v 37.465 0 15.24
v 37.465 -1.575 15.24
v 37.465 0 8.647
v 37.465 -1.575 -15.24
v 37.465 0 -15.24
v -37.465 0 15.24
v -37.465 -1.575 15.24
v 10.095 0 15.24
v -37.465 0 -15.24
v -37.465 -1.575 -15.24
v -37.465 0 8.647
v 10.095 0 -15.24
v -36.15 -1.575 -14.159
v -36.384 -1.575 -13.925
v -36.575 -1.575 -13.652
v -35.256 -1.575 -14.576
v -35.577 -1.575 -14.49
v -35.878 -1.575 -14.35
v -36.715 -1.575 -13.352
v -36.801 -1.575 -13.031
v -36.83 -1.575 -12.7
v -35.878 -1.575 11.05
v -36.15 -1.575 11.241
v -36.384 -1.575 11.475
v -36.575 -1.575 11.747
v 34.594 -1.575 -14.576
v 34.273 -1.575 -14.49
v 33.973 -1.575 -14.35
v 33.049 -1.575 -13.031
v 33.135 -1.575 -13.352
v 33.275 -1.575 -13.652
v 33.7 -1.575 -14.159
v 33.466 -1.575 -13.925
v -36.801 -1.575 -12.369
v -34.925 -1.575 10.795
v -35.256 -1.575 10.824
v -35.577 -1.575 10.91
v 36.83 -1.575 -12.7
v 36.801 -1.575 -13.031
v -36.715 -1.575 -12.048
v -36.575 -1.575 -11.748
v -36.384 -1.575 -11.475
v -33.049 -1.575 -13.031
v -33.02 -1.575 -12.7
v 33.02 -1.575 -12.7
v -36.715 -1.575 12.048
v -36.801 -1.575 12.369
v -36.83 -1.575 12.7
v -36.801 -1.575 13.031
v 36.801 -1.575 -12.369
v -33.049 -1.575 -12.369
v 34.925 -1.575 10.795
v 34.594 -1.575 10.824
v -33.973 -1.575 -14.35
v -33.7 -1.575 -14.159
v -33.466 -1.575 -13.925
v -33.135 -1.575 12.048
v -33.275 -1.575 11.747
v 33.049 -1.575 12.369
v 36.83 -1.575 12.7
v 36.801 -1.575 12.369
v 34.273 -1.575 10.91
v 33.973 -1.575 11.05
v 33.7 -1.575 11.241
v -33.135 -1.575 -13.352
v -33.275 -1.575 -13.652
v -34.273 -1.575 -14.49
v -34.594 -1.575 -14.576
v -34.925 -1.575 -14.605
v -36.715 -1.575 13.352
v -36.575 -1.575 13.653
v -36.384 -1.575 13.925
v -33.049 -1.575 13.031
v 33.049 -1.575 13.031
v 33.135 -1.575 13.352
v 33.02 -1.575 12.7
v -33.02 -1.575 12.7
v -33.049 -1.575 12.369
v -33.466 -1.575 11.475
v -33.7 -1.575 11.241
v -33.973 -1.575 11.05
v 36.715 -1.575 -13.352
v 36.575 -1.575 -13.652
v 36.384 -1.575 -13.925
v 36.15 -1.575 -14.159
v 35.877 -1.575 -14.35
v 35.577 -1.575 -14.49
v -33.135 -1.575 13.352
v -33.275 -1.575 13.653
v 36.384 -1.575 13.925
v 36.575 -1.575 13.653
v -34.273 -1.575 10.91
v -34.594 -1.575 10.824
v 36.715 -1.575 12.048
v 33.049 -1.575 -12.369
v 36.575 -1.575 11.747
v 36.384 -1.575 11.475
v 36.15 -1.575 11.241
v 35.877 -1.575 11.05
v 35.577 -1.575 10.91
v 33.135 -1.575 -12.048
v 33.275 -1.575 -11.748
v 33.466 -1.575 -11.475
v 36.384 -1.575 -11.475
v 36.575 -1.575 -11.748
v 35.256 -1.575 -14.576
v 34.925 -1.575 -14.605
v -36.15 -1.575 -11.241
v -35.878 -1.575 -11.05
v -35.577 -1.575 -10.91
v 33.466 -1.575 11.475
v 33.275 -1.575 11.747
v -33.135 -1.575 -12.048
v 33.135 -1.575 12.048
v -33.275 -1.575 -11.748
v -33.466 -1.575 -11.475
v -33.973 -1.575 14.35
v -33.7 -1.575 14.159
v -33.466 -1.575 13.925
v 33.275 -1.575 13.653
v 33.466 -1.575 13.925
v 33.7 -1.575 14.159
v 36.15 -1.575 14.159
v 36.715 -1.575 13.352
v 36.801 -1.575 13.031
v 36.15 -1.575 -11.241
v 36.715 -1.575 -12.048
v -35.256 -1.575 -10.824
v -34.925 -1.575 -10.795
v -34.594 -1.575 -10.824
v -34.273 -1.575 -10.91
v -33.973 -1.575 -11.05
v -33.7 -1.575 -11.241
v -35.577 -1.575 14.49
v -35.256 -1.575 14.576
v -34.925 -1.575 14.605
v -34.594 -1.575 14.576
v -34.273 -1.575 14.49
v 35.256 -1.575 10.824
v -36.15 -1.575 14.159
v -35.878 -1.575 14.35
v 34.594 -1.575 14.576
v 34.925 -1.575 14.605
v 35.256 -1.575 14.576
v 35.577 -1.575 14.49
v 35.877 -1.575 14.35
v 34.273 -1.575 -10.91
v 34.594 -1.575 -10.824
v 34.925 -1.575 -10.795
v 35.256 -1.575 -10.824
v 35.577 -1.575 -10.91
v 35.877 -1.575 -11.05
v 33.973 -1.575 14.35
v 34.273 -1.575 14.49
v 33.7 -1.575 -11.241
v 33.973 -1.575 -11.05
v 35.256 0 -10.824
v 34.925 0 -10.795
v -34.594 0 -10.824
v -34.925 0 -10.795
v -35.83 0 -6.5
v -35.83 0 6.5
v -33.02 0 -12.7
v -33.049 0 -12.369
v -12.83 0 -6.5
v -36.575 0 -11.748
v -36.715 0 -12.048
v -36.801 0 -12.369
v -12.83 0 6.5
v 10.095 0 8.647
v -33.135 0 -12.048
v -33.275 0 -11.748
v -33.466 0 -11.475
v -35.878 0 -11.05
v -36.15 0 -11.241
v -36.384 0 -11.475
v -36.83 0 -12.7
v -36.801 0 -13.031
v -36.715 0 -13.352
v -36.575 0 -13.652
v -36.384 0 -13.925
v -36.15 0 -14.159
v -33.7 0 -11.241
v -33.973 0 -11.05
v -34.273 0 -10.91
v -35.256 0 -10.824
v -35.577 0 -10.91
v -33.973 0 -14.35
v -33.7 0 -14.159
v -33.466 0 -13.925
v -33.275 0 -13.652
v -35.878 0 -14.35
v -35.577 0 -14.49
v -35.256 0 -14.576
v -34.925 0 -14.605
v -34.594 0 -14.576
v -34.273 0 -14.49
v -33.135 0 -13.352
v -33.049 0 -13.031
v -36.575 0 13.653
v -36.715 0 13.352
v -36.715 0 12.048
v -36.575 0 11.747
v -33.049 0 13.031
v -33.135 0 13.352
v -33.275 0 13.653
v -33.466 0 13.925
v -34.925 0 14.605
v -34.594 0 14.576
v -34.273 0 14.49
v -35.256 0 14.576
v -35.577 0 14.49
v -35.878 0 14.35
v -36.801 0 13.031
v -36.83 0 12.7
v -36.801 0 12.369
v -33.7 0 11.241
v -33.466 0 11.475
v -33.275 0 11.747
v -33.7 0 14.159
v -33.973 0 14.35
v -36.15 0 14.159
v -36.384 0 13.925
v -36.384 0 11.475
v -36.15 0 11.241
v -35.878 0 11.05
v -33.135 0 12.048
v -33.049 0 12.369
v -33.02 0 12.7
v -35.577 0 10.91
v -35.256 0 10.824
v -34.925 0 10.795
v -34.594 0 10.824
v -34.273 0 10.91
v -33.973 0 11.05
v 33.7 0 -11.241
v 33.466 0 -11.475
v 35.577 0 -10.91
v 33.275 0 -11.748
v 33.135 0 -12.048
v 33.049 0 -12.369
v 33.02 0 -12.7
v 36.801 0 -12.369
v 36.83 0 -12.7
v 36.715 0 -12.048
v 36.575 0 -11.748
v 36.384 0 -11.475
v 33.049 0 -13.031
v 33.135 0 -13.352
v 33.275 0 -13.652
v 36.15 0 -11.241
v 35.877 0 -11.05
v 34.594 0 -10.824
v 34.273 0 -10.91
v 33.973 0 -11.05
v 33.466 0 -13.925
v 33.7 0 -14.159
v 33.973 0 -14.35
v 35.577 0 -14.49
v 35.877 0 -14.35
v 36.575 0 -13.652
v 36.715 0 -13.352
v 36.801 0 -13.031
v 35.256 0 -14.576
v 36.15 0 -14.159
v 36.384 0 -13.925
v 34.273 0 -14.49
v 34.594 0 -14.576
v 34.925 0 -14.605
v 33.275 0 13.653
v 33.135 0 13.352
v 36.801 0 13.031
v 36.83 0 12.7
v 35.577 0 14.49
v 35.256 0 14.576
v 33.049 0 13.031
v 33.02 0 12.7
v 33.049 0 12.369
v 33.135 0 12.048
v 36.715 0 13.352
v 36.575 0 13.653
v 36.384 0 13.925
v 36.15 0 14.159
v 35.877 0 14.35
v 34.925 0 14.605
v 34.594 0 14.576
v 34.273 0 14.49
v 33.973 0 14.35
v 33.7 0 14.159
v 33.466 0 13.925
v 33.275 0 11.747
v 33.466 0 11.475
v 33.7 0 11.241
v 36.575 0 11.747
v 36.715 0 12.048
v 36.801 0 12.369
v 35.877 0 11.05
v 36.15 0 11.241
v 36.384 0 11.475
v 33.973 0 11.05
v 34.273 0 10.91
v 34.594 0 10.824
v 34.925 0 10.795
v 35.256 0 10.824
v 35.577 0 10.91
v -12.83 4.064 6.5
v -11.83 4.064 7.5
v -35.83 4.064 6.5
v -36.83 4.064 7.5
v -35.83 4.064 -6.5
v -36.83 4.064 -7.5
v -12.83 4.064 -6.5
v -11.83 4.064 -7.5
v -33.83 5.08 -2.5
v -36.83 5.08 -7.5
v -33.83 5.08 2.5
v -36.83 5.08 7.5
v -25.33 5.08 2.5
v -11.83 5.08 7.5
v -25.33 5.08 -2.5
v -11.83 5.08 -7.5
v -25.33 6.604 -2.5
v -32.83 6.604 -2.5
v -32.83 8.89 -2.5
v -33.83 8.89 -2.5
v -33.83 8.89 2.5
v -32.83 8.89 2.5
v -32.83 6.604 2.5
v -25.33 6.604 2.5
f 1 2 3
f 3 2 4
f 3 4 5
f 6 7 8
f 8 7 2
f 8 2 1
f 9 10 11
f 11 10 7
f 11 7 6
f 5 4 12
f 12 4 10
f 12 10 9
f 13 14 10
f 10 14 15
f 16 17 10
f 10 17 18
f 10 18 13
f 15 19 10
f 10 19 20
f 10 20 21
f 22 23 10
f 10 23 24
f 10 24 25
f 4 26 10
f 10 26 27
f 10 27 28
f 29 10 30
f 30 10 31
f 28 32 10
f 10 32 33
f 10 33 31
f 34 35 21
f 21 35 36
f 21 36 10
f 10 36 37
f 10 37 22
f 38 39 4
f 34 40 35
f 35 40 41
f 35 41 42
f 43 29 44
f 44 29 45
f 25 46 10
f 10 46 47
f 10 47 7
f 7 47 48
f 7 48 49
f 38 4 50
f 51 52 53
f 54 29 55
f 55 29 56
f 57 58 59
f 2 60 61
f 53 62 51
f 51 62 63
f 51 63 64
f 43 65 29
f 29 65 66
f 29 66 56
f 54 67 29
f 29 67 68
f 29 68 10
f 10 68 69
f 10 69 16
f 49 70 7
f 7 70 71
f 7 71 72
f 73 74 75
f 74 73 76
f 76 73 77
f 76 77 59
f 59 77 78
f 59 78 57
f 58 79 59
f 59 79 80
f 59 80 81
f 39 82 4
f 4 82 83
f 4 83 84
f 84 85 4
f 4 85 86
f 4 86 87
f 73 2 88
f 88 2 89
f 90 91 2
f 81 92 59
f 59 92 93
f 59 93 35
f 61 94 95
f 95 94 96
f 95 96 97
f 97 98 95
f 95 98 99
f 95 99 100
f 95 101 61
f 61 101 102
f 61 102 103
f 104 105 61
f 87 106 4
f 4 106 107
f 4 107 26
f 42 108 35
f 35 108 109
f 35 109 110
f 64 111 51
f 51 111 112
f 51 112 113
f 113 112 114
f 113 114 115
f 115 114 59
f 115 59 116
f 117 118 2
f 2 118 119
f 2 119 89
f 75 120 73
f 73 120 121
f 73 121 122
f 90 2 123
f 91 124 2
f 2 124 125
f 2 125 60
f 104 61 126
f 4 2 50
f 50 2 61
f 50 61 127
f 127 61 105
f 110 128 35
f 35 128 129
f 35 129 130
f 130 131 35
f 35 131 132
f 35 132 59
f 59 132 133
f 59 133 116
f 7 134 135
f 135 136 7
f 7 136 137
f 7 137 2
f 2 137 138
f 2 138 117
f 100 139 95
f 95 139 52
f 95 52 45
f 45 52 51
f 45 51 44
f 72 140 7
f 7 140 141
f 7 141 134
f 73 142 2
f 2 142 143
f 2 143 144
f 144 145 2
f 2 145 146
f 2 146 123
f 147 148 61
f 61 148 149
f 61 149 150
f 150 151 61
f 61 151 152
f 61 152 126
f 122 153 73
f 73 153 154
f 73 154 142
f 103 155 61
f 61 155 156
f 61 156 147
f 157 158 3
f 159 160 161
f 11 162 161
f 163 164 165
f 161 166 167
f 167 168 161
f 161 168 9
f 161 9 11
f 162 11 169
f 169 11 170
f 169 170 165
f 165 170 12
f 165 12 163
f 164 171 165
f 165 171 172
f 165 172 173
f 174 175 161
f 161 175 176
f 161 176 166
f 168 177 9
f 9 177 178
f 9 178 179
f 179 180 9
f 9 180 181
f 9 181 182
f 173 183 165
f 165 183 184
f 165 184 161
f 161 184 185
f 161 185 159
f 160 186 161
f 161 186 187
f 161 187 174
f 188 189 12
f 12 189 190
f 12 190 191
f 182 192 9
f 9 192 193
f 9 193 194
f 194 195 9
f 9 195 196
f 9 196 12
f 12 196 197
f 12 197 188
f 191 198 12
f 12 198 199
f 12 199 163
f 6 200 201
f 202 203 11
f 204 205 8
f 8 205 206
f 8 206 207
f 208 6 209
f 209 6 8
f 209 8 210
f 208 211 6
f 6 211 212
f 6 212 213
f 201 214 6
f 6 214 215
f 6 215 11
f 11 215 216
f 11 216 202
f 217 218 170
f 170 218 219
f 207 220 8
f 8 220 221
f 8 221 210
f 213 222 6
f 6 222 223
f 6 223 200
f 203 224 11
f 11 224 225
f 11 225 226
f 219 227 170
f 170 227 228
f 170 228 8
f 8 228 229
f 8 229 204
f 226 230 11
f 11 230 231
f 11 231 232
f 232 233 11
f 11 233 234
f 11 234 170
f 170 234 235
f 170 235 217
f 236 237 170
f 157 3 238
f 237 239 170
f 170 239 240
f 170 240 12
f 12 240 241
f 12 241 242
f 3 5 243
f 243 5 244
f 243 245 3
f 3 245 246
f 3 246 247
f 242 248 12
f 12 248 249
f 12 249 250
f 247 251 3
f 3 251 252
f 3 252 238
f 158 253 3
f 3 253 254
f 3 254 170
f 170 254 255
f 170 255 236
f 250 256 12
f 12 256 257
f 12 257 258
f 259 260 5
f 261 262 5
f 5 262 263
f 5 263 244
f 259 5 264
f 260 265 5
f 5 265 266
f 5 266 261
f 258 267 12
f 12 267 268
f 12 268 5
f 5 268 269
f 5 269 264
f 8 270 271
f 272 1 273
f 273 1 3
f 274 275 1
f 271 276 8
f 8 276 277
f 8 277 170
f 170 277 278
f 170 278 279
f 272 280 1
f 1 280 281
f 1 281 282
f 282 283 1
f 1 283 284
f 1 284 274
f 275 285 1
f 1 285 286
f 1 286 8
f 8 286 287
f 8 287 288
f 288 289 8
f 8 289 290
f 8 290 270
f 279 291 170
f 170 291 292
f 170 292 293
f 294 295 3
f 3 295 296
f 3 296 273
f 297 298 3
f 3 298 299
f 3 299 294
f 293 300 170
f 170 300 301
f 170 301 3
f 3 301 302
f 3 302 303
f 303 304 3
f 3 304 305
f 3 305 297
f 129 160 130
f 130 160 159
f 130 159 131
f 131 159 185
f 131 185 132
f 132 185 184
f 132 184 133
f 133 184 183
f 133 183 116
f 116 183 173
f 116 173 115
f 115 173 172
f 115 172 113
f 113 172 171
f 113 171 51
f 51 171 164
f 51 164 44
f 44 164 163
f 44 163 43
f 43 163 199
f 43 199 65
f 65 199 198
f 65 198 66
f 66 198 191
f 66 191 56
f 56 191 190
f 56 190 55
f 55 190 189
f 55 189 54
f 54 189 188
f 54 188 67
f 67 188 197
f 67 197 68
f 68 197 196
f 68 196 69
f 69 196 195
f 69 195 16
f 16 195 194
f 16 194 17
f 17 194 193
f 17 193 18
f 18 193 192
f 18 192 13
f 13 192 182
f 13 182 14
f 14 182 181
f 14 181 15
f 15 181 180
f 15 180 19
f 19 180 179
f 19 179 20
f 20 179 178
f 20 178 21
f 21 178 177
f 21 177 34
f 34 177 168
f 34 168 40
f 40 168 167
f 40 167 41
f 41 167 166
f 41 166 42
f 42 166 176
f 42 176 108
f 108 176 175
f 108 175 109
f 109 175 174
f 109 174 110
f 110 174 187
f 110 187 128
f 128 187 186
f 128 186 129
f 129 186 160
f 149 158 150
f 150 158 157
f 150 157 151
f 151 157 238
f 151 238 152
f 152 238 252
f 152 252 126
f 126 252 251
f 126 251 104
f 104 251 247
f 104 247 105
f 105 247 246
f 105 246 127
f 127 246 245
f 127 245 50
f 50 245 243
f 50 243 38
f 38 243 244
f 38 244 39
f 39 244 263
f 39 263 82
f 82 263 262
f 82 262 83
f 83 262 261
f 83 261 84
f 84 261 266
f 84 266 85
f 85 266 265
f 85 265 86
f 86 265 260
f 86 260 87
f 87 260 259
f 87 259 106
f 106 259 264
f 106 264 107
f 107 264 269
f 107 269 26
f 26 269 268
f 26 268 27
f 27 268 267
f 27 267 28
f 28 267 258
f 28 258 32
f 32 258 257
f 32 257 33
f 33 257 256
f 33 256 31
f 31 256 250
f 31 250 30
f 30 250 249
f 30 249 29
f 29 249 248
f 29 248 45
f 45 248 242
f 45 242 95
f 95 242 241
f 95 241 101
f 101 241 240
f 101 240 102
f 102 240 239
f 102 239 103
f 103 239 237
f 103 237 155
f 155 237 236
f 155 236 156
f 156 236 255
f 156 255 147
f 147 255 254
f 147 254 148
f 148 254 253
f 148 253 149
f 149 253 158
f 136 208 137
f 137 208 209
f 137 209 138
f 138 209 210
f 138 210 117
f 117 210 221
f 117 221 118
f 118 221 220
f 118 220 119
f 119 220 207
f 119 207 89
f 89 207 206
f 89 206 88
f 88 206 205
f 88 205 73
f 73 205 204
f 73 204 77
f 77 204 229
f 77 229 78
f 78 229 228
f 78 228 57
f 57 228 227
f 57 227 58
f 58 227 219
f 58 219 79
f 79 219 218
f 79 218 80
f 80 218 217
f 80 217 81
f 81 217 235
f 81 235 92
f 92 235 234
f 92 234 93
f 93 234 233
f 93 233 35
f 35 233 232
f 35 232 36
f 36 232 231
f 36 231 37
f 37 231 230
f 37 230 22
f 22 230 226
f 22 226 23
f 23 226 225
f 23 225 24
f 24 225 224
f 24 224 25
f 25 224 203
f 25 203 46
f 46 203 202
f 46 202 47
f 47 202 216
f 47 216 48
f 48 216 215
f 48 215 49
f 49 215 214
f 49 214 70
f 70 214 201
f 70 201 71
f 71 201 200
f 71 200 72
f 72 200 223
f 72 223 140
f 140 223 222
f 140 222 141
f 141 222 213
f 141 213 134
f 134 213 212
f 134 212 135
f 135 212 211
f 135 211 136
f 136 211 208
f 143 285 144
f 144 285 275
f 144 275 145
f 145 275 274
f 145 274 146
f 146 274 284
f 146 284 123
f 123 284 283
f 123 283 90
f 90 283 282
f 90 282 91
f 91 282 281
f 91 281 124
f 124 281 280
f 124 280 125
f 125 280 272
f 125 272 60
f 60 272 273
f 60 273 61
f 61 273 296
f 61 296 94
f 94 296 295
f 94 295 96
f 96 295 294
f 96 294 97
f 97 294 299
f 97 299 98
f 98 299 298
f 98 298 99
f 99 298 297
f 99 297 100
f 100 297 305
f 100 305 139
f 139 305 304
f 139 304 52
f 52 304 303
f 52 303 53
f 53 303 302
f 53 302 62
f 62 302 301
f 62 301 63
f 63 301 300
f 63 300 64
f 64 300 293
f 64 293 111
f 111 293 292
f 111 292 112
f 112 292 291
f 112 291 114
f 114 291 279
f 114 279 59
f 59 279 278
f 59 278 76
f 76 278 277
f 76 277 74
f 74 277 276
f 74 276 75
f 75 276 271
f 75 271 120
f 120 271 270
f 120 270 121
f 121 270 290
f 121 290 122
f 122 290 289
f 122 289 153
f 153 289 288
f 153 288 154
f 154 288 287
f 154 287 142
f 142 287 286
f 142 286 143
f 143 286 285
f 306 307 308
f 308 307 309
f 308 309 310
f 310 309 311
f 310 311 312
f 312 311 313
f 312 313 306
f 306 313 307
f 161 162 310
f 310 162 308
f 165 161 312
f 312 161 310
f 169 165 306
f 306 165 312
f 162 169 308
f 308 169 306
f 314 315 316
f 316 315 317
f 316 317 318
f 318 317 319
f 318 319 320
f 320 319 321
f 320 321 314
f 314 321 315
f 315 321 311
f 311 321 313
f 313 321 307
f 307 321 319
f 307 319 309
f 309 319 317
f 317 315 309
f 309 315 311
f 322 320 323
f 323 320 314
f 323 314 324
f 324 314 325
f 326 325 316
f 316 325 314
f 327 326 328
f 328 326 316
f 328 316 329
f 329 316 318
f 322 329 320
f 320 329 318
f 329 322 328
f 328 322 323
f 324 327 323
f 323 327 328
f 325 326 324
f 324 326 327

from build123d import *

# Parameters (mm, degrees)
SKETCH1_W           = 74.93
SKETCH1_H           = 30.48
SKETCH1_R           = 1.905
BOSS_EXTRUDE1_DEPTH = 1.5748
SKETCH2_W           = 25
SKETCH2_H           = 7.5
BOSS_EXTRUDE2_DEPTH = 5.08
CUT_EXTRUDE1_START  = -1.016
SKETCH3_W           = 25
SKETCH3_H           = 15
SKETCH3_W_2         = 23
SKETCH3_H_2         = 13
CUT_EXTRUDE1_DEPTH  = 4.064
SKETCH4_W           = 8.5
SKETCH4_H           = 5
BOSS_EXTRUDE3_DEPTH = 1.524
SKETCH5_W           = 1
SKETCH5_H           = 5
BOSS_EXTRUDE4_DEPTH = 2.286


with BuildPart() as part:
    # Sketch1 → Boss-Extrude1 (new body)
    with BuildSketch(Plane(origin=(0, 0, 0), x_dir=(1, 0, 0), z_dir=(0, 1, 0))):
        Rectangle(SKETCH1_W, SKETCH1_H)
        with Locations((-34.925, 12.7)):
            Circle(SKETCH1_R, mode=Mode.SUBTRACT)
        with Locations((34.925, 12.7)):
            Circle(SKETCH1_R, mode=Mode.SUBTRACT)
        with Locations((-34.925, -12.7)):
            Circle(SKETCH1_R, mode=Mode.SUBTRACT)
        with Locations((34.925, -12.7)):
            Circle(SKETCH1_R, mode=Mode.SUBTRACT)
    extrude(amount=-BOSS_EXTRUDE1_DEPTH)

    # Sketch2 → Boss-Extrude2 (add)
    with BuildSketch(Plane(origin=(0, 0, 0), x_dir=(1, 0, 0), z_dir=(0, 1, 0))):
        with Locations((-24.33, 3.75)):
            Rectangle(SKETCH2_W, SKETCH2_H)
        with Locations((-24.33, -3.75)):
            Rectangle(SKETCH2_W, SKETCH2_H)
    extrude(amount=BOSS_EXTRUDE2_DEPTH)

    # Sketch3 → Cut-Extrude1 (cut)
    with BuildSketch(Plane(origin=(0, 5.08, 0), x_dir=(1, 0, 0), z_dir=(0, 1, 0)).offset(CUT_EXTRUDE1_START)):
        with Locations((-24.33, 0)):
            Rectangle(SKETCH3_W, SKETCH3_H)
        with Locations((-24.33, 0)):
            Rectangle(SKETCH3_W_2, SKETCH3_H_2, mode=Mode.SUBTRACT)
    extrude(amount=-CUT_EXTRUDE1_DEPTH, mode=Mode.SUBTRACT)

    # Sketch4 → Boss-Extrude3 (add)
    with BuildSketch(Plane(origin=(0, 5.08, 0), x_dir=(1, 0, 0), z_dir=(0, 1, 0))):
        with Locations((-29.58, 0)):
            Rectangle(SKETCH4_W, SKETCH4_H)
    extrude(amount=BOSS_EXTRUDE3_DEPTH)

    # Sketch5 → Boss-Extrude4 (add)
    with BuildSketch(Plane(origin=(0, 6.604, 0), x_dir=(1, 0, 0), z_dir=(0, 1, 0))):
        with Locations((-33.33, 0)):
            Rectangle(SKETCH5_W, SKETCH5_H)
    extrude(amount=BOSS_EXTRUDE4_DEPTH)


solid = part.part
